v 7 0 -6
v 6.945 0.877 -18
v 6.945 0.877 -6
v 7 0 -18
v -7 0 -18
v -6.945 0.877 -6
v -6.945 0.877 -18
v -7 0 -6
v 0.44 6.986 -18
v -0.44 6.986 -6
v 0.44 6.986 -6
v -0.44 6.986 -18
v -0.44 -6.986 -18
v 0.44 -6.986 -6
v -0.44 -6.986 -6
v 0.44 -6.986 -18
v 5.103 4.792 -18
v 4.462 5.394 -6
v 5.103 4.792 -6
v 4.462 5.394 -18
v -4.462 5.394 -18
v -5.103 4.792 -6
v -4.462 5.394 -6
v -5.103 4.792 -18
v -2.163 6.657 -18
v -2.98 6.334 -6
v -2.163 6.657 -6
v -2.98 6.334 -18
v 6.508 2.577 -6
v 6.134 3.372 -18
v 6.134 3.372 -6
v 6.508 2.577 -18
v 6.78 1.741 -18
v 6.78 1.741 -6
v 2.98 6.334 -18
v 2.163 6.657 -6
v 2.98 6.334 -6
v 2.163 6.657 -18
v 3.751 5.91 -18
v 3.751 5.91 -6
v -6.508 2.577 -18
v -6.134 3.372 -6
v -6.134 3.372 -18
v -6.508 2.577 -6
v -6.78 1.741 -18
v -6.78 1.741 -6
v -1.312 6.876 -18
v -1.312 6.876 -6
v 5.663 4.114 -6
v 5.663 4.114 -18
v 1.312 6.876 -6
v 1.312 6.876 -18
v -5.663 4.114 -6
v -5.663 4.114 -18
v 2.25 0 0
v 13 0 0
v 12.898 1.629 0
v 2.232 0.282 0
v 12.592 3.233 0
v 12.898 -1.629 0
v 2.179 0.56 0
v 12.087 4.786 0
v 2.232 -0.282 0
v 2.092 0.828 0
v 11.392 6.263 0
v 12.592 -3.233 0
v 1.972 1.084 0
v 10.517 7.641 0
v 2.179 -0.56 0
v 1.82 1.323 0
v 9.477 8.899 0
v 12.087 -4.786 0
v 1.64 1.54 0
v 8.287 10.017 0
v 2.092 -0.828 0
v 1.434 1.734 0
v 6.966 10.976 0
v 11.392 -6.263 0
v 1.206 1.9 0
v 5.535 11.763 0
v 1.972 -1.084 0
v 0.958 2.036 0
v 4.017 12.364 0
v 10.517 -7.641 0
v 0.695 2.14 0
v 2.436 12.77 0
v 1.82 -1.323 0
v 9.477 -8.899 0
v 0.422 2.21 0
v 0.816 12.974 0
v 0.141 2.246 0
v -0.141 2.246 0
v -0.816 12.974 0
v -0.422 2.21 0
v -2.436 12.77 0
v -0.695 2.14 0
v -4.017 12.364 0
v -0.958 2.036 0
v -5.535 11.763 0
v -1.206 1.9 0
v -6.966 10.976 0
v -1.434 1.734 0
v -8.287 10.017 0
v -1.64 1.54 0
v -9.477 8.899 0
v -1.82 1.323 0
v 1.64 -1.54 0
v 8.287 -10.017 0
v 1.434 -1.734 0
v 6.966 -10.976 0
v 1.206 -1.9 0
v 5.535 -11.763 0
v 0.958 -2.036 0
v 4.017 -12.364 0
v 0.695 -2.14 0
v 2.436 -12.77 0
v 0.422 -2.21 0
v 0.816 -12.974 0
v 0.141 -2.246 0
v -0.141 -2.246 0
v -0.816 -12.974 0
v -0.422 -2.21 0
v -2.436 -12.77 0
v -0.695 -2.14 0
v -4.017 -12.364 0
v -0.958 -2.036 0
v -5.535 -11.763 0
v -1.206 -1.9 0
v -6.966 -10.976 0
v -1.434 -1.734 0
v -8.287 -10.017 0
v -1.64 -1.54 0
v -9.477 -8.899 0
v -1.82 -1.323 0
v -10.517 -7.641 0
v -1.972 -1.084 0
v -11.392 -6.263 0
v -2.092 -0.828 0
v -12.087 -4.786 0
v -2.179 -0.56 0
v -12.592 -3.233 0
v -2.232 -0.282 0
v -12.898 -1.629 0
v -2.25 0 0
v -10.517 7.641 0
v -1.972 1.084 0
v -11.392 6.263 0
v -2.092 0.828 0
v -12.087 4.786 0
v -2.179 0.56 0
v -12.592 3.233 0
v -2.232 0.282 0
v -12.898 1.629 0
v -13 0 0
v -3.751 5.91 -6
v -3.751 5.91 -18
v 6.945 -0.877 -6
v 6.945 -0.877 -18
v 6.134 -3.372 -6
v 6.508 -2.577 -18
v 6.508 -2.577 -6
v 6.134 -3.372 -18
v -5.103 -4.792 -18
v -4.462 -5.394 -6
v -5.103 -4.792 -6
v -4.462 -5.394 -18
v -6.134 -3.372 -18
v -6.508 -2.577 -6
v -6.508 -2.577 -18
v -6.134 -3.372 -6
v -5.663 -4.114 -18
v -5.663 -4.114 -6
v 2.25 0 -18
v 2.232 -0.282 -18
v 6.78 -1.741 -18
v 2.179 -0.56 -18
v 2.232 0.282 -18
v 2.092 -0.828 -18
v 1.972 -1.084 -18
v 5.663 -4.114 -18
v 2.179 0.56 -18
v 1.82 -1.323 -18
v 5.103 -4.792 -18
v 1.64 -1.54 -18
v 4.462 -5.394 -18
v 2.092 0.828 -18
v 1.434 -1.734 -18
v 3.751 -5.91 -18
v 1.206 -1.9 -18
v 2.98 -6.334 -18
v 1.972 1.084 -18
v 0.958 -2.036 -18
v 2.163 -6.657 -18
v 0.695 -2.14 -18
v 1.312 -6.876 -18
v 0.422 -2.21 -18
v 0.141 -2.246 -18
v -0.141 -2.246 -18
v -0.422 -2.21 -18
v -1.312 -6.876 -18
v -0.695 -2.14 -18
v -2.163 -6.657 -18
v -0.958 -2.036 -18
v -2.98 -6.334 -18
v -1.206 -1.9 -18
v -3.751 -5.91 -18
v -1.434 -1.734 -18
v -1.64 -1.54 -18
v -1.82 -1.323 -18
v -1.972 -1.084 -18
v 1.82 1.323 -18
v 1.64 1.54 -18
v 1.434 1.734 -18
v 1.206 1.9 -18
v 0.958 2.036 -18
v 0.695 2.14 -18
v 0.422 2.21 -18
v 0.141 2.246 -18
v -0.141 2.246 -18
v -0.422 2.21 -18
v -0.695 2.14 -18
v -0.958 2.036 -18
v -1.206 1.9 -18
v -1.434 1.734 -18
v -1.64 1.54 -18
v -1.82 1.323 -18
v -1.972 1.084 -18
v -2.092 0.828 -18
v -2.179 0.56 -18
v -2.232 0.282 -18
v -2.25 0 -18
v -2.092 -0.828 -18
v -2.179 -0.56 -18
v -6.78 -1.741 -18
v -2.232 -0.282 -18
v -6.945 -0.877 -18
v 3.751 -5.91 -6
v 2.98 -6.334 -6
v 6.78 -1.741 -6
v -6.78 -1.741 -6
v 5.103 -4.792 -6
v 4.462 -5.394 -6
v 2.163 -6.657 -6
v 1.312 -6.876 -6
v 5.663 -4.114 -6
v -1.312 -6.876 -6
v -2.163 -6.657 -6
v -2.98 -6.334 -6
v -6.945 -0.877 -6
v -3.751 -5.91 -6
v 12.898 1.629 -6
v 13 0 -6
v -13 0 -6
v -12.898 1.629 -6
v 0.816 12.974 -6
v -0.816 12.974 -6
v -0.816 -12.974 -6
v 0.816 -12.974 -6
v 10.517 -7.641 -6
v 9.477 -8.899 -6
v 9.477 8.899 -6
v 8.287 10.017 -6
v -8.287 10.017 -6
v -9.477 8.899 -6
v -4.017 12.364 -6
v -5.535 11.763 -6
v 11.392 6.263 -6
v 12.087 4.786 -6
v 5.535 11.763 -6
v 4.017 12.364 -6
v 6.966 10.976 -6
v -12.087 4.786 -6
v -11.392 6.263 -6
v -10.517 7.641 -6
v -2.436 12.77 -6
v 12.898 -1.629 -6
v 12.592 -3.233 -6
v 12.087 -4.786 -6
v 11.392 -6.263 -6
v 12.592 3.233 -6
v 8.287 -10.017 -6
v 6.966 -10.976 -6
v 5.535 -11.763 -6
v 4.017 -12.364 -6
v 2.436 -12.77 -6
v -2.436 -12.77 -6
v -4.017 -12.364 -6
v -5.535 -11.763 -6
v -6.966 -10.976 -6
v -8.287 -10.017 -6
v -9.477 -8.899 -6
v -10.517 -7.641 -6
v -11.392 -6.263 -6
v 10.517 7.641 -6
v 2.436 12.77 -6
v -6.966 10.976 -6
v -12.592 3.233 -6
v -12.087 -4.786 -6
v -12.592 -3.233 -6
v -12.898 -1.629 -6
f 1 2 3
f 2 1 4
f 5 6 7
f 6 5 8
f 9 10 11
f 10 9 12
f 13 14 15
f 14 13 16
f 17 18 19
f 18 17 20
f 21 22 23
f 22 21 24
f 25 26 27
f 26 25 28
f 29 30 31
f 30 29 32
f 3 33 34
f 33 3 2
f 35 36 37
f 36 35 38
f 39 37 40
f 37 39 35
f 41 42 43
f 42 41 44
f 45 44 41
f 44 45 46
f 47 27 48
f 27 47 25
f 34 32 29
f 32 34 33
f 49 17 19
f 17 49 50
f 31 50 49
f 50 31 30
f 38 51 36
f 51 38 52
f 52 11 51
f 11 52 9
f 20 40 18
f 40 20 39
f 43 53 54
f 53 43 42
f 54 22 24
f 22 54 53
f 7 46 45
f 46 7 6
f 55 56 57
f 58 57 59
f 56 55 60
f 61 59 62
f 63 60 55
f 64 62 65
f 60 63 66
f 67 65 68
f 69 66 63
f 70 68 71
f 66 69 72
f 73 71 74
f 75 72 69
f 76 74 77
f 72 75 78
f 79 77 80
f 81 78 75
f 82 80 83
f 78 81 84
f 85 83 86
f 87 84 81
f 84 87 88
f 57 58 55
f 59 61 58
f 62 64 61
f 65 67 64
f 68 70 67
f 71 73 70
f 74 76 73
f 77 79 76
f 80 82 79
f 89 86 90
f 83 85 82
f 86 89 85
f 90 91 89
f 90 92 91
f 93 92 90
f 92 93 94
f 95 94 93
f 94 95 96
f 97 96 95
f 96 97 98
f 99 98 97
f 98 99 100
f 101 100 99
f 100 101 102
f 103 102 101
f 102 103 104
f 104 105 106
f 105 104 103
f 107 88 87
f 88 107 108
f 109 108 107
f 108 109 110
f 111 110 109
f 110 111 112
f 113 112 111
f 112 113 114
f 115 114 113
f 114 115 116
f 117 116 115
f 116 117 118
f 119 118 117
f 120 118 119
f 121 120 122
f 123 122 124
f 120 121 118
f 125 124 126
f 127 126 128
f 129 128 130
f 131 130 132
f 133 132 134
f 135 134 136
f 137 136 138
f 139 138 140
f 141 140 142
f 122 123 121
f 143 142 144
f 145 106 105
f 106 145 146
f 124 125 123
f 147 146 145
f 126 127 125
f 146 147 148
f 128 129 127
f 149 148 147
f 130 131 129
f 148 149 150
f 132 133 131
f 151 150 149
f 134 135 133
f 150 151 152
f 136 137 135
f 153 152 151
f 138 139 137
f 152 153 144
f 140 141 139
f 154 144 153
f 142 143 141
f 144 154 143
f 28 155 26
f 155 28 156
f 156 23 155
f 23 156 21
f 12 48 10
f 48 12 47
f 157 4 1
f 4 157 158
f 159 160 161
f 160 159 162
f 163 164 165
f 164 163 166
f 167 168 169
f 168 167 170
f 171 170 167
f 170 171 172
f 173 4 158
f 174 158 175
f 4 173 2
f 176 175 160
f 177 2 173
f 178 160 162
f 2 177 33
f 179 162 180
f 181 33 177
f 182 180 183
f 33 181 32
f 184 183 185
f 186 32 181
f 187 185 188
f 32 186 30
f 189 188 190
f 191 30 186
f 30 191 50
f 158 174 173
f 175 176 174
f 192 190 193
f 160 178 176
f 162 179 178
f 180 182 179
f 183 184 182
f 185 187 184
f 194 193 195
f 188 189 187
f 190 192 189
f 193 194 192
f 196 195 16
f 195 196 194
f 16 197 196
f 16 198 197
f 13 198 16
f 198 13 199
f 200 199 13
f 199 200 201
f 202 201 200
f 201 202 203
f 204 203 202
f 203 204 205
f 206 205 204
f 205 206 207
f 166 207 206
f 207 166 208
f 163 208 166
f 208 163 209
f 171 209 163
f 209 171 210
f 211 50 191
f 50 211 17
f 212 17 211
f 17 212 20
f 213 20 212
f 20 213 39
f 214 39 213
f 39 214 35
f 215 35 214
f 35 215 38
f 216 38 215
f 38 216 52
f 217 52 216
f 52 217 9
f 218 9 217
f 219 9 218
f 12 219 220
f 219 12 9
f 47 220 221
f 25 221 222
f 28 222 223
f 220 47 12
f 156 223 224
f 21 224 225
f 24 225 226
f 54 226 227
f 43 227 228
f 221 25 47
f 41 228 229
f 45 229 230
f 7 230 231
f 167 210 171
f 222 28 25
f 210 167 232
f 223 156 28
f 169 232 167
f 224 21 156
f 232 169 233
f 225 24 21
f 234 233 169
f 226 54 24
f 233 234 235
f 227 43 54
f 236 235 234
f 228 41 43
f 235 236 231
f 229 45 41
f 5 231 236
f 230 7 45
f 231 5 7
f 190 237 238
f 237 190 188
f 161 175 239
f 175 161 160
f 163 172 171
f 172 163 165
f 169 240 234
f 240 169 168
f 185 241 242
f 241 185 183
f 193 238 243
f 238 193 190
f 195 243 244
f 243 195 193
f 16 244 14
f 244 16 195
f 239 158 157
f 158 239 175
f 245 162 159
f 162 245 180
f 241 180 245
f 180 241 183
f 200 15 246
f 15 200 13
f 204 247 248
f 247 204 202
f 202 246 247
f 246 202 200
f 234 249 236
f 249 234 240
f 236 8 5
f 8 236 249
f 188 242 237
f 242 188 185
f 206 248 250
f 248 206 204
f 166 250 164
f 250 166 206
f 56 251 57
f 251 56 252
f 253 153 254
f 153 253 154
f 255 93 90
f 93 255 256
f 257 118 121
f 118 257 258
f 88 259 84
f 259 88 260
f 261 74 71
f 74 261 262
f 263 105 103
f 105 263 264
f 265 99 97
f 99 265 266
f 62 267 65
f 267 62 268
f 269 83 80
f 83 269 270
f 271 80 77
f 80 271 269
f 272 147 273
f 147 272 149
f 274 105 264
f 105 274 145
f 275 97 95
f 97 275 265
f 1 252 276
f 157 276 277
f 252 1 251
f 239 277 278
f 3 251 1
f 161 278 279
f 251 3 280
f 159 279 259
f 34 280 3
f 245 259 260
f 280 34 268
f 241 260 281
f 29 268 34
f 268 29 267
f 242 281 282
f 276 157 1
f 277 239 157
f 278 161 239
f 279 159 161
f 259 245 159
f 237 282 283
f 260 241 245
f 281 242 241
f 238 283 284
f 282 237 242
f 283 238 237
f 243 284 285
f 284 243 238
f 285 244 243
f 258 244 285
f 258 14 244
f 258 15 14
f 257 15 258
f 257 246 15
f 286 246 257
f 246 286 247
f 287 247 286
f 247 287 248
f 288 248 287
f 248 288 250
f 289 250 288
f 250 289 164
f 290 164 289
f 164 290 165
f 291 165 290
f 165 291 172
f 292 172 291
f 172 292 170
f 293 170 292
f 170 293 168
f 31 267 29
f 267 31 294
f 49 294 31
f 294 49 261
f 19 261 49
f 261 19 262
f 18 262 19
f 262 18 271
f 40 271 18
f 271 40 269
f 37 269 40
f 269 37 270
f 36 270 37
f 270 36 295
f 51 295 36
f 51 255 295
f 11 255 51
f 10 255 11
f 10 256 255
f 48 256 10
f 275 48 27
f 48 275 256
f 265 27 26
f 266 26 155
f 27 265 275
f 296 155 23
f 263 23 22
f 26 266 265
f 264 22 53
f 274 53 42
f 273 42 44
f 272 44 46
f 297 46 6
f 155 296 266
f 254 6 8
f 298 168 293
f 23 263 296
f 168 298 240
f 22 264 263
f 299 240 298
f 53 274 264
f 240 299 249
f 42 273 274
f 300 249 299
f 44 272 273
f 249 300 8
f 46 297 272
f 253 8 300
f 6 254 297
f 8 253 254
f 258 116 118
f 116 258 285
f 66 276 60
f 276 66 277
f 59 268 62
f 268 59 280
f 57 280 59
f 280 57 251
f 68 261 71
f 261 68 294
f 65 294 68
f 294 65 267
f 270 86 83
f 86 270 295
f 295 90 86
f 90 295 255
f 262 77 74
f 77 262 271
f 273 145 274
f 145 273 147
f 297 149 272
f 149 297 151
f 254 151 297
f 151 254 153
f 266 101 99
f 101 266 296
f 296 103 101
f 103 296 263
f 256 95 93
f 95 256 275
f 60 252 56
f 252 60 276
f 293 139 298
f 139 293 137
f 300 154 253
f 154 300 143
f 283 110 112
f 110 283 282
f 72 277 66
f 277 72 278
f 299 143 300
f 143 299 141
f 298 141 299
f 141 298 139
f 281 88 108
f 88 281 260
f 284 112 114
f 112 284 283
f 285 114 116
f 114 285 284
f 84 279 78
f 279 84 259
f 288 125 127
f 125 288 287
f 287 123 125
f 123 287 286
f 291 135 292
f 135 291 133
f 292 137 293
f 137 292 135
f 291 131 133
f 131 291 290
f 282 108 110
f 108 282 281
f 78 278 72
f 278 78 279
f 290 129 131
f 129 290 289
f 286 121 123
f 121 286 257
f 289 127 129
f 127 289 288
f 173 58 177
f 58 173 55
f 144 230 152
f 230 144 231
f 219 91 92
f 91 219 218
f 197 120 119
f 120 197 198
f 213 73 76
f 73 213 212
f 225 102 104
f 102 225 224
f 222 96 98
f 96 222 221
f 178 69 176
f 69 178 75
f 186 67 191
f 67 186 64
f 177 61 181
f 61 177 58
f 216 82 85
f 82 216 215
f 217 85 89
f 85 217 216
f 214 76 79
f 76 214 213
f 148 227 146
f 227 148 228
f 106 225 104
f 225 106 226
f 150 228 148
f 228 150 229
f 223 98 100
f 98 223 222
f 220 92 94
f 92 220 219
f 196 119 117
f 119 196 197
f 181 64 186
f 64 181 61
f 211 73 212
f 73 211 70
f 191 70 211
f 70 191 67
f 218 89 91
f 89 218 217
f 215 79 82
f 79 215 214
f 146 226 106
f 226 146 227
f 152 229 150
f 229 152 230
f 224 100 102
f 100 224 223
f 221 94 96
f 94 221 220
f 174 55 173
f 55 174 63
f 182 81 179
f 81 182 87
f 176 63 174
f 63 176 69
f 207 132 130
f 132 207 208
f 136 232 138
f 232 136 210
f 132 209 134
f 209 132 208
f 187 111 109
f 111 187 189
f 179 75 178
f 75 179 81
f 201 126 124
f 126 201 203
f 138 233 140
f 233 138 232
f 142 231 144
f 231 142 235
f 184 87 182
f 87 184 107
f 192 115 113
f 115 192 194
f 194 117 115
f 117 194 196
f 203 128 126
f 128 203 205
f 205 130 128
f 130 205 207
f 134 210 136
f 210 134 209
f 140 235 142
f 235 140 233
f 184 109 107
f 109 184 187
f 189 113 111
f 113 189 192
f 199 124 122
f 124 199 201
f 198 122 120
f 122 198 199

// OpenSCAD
$fn = 50;


difference() {
	union() {
		translate(v = [0, 0, -18.0000000000]) {
			cylinder(h = 18, r = 7.0000000000);
		}
		translate(v = [0, 0, -6.0000000000]) {
			cylinder(h = 6, r = 13.0000000000);
		}
	}
	union() {
		#translate(v = [0, 0, -18]) {
			cylinder(h = 18, r = 2.2500000000);
		}
	}
}
